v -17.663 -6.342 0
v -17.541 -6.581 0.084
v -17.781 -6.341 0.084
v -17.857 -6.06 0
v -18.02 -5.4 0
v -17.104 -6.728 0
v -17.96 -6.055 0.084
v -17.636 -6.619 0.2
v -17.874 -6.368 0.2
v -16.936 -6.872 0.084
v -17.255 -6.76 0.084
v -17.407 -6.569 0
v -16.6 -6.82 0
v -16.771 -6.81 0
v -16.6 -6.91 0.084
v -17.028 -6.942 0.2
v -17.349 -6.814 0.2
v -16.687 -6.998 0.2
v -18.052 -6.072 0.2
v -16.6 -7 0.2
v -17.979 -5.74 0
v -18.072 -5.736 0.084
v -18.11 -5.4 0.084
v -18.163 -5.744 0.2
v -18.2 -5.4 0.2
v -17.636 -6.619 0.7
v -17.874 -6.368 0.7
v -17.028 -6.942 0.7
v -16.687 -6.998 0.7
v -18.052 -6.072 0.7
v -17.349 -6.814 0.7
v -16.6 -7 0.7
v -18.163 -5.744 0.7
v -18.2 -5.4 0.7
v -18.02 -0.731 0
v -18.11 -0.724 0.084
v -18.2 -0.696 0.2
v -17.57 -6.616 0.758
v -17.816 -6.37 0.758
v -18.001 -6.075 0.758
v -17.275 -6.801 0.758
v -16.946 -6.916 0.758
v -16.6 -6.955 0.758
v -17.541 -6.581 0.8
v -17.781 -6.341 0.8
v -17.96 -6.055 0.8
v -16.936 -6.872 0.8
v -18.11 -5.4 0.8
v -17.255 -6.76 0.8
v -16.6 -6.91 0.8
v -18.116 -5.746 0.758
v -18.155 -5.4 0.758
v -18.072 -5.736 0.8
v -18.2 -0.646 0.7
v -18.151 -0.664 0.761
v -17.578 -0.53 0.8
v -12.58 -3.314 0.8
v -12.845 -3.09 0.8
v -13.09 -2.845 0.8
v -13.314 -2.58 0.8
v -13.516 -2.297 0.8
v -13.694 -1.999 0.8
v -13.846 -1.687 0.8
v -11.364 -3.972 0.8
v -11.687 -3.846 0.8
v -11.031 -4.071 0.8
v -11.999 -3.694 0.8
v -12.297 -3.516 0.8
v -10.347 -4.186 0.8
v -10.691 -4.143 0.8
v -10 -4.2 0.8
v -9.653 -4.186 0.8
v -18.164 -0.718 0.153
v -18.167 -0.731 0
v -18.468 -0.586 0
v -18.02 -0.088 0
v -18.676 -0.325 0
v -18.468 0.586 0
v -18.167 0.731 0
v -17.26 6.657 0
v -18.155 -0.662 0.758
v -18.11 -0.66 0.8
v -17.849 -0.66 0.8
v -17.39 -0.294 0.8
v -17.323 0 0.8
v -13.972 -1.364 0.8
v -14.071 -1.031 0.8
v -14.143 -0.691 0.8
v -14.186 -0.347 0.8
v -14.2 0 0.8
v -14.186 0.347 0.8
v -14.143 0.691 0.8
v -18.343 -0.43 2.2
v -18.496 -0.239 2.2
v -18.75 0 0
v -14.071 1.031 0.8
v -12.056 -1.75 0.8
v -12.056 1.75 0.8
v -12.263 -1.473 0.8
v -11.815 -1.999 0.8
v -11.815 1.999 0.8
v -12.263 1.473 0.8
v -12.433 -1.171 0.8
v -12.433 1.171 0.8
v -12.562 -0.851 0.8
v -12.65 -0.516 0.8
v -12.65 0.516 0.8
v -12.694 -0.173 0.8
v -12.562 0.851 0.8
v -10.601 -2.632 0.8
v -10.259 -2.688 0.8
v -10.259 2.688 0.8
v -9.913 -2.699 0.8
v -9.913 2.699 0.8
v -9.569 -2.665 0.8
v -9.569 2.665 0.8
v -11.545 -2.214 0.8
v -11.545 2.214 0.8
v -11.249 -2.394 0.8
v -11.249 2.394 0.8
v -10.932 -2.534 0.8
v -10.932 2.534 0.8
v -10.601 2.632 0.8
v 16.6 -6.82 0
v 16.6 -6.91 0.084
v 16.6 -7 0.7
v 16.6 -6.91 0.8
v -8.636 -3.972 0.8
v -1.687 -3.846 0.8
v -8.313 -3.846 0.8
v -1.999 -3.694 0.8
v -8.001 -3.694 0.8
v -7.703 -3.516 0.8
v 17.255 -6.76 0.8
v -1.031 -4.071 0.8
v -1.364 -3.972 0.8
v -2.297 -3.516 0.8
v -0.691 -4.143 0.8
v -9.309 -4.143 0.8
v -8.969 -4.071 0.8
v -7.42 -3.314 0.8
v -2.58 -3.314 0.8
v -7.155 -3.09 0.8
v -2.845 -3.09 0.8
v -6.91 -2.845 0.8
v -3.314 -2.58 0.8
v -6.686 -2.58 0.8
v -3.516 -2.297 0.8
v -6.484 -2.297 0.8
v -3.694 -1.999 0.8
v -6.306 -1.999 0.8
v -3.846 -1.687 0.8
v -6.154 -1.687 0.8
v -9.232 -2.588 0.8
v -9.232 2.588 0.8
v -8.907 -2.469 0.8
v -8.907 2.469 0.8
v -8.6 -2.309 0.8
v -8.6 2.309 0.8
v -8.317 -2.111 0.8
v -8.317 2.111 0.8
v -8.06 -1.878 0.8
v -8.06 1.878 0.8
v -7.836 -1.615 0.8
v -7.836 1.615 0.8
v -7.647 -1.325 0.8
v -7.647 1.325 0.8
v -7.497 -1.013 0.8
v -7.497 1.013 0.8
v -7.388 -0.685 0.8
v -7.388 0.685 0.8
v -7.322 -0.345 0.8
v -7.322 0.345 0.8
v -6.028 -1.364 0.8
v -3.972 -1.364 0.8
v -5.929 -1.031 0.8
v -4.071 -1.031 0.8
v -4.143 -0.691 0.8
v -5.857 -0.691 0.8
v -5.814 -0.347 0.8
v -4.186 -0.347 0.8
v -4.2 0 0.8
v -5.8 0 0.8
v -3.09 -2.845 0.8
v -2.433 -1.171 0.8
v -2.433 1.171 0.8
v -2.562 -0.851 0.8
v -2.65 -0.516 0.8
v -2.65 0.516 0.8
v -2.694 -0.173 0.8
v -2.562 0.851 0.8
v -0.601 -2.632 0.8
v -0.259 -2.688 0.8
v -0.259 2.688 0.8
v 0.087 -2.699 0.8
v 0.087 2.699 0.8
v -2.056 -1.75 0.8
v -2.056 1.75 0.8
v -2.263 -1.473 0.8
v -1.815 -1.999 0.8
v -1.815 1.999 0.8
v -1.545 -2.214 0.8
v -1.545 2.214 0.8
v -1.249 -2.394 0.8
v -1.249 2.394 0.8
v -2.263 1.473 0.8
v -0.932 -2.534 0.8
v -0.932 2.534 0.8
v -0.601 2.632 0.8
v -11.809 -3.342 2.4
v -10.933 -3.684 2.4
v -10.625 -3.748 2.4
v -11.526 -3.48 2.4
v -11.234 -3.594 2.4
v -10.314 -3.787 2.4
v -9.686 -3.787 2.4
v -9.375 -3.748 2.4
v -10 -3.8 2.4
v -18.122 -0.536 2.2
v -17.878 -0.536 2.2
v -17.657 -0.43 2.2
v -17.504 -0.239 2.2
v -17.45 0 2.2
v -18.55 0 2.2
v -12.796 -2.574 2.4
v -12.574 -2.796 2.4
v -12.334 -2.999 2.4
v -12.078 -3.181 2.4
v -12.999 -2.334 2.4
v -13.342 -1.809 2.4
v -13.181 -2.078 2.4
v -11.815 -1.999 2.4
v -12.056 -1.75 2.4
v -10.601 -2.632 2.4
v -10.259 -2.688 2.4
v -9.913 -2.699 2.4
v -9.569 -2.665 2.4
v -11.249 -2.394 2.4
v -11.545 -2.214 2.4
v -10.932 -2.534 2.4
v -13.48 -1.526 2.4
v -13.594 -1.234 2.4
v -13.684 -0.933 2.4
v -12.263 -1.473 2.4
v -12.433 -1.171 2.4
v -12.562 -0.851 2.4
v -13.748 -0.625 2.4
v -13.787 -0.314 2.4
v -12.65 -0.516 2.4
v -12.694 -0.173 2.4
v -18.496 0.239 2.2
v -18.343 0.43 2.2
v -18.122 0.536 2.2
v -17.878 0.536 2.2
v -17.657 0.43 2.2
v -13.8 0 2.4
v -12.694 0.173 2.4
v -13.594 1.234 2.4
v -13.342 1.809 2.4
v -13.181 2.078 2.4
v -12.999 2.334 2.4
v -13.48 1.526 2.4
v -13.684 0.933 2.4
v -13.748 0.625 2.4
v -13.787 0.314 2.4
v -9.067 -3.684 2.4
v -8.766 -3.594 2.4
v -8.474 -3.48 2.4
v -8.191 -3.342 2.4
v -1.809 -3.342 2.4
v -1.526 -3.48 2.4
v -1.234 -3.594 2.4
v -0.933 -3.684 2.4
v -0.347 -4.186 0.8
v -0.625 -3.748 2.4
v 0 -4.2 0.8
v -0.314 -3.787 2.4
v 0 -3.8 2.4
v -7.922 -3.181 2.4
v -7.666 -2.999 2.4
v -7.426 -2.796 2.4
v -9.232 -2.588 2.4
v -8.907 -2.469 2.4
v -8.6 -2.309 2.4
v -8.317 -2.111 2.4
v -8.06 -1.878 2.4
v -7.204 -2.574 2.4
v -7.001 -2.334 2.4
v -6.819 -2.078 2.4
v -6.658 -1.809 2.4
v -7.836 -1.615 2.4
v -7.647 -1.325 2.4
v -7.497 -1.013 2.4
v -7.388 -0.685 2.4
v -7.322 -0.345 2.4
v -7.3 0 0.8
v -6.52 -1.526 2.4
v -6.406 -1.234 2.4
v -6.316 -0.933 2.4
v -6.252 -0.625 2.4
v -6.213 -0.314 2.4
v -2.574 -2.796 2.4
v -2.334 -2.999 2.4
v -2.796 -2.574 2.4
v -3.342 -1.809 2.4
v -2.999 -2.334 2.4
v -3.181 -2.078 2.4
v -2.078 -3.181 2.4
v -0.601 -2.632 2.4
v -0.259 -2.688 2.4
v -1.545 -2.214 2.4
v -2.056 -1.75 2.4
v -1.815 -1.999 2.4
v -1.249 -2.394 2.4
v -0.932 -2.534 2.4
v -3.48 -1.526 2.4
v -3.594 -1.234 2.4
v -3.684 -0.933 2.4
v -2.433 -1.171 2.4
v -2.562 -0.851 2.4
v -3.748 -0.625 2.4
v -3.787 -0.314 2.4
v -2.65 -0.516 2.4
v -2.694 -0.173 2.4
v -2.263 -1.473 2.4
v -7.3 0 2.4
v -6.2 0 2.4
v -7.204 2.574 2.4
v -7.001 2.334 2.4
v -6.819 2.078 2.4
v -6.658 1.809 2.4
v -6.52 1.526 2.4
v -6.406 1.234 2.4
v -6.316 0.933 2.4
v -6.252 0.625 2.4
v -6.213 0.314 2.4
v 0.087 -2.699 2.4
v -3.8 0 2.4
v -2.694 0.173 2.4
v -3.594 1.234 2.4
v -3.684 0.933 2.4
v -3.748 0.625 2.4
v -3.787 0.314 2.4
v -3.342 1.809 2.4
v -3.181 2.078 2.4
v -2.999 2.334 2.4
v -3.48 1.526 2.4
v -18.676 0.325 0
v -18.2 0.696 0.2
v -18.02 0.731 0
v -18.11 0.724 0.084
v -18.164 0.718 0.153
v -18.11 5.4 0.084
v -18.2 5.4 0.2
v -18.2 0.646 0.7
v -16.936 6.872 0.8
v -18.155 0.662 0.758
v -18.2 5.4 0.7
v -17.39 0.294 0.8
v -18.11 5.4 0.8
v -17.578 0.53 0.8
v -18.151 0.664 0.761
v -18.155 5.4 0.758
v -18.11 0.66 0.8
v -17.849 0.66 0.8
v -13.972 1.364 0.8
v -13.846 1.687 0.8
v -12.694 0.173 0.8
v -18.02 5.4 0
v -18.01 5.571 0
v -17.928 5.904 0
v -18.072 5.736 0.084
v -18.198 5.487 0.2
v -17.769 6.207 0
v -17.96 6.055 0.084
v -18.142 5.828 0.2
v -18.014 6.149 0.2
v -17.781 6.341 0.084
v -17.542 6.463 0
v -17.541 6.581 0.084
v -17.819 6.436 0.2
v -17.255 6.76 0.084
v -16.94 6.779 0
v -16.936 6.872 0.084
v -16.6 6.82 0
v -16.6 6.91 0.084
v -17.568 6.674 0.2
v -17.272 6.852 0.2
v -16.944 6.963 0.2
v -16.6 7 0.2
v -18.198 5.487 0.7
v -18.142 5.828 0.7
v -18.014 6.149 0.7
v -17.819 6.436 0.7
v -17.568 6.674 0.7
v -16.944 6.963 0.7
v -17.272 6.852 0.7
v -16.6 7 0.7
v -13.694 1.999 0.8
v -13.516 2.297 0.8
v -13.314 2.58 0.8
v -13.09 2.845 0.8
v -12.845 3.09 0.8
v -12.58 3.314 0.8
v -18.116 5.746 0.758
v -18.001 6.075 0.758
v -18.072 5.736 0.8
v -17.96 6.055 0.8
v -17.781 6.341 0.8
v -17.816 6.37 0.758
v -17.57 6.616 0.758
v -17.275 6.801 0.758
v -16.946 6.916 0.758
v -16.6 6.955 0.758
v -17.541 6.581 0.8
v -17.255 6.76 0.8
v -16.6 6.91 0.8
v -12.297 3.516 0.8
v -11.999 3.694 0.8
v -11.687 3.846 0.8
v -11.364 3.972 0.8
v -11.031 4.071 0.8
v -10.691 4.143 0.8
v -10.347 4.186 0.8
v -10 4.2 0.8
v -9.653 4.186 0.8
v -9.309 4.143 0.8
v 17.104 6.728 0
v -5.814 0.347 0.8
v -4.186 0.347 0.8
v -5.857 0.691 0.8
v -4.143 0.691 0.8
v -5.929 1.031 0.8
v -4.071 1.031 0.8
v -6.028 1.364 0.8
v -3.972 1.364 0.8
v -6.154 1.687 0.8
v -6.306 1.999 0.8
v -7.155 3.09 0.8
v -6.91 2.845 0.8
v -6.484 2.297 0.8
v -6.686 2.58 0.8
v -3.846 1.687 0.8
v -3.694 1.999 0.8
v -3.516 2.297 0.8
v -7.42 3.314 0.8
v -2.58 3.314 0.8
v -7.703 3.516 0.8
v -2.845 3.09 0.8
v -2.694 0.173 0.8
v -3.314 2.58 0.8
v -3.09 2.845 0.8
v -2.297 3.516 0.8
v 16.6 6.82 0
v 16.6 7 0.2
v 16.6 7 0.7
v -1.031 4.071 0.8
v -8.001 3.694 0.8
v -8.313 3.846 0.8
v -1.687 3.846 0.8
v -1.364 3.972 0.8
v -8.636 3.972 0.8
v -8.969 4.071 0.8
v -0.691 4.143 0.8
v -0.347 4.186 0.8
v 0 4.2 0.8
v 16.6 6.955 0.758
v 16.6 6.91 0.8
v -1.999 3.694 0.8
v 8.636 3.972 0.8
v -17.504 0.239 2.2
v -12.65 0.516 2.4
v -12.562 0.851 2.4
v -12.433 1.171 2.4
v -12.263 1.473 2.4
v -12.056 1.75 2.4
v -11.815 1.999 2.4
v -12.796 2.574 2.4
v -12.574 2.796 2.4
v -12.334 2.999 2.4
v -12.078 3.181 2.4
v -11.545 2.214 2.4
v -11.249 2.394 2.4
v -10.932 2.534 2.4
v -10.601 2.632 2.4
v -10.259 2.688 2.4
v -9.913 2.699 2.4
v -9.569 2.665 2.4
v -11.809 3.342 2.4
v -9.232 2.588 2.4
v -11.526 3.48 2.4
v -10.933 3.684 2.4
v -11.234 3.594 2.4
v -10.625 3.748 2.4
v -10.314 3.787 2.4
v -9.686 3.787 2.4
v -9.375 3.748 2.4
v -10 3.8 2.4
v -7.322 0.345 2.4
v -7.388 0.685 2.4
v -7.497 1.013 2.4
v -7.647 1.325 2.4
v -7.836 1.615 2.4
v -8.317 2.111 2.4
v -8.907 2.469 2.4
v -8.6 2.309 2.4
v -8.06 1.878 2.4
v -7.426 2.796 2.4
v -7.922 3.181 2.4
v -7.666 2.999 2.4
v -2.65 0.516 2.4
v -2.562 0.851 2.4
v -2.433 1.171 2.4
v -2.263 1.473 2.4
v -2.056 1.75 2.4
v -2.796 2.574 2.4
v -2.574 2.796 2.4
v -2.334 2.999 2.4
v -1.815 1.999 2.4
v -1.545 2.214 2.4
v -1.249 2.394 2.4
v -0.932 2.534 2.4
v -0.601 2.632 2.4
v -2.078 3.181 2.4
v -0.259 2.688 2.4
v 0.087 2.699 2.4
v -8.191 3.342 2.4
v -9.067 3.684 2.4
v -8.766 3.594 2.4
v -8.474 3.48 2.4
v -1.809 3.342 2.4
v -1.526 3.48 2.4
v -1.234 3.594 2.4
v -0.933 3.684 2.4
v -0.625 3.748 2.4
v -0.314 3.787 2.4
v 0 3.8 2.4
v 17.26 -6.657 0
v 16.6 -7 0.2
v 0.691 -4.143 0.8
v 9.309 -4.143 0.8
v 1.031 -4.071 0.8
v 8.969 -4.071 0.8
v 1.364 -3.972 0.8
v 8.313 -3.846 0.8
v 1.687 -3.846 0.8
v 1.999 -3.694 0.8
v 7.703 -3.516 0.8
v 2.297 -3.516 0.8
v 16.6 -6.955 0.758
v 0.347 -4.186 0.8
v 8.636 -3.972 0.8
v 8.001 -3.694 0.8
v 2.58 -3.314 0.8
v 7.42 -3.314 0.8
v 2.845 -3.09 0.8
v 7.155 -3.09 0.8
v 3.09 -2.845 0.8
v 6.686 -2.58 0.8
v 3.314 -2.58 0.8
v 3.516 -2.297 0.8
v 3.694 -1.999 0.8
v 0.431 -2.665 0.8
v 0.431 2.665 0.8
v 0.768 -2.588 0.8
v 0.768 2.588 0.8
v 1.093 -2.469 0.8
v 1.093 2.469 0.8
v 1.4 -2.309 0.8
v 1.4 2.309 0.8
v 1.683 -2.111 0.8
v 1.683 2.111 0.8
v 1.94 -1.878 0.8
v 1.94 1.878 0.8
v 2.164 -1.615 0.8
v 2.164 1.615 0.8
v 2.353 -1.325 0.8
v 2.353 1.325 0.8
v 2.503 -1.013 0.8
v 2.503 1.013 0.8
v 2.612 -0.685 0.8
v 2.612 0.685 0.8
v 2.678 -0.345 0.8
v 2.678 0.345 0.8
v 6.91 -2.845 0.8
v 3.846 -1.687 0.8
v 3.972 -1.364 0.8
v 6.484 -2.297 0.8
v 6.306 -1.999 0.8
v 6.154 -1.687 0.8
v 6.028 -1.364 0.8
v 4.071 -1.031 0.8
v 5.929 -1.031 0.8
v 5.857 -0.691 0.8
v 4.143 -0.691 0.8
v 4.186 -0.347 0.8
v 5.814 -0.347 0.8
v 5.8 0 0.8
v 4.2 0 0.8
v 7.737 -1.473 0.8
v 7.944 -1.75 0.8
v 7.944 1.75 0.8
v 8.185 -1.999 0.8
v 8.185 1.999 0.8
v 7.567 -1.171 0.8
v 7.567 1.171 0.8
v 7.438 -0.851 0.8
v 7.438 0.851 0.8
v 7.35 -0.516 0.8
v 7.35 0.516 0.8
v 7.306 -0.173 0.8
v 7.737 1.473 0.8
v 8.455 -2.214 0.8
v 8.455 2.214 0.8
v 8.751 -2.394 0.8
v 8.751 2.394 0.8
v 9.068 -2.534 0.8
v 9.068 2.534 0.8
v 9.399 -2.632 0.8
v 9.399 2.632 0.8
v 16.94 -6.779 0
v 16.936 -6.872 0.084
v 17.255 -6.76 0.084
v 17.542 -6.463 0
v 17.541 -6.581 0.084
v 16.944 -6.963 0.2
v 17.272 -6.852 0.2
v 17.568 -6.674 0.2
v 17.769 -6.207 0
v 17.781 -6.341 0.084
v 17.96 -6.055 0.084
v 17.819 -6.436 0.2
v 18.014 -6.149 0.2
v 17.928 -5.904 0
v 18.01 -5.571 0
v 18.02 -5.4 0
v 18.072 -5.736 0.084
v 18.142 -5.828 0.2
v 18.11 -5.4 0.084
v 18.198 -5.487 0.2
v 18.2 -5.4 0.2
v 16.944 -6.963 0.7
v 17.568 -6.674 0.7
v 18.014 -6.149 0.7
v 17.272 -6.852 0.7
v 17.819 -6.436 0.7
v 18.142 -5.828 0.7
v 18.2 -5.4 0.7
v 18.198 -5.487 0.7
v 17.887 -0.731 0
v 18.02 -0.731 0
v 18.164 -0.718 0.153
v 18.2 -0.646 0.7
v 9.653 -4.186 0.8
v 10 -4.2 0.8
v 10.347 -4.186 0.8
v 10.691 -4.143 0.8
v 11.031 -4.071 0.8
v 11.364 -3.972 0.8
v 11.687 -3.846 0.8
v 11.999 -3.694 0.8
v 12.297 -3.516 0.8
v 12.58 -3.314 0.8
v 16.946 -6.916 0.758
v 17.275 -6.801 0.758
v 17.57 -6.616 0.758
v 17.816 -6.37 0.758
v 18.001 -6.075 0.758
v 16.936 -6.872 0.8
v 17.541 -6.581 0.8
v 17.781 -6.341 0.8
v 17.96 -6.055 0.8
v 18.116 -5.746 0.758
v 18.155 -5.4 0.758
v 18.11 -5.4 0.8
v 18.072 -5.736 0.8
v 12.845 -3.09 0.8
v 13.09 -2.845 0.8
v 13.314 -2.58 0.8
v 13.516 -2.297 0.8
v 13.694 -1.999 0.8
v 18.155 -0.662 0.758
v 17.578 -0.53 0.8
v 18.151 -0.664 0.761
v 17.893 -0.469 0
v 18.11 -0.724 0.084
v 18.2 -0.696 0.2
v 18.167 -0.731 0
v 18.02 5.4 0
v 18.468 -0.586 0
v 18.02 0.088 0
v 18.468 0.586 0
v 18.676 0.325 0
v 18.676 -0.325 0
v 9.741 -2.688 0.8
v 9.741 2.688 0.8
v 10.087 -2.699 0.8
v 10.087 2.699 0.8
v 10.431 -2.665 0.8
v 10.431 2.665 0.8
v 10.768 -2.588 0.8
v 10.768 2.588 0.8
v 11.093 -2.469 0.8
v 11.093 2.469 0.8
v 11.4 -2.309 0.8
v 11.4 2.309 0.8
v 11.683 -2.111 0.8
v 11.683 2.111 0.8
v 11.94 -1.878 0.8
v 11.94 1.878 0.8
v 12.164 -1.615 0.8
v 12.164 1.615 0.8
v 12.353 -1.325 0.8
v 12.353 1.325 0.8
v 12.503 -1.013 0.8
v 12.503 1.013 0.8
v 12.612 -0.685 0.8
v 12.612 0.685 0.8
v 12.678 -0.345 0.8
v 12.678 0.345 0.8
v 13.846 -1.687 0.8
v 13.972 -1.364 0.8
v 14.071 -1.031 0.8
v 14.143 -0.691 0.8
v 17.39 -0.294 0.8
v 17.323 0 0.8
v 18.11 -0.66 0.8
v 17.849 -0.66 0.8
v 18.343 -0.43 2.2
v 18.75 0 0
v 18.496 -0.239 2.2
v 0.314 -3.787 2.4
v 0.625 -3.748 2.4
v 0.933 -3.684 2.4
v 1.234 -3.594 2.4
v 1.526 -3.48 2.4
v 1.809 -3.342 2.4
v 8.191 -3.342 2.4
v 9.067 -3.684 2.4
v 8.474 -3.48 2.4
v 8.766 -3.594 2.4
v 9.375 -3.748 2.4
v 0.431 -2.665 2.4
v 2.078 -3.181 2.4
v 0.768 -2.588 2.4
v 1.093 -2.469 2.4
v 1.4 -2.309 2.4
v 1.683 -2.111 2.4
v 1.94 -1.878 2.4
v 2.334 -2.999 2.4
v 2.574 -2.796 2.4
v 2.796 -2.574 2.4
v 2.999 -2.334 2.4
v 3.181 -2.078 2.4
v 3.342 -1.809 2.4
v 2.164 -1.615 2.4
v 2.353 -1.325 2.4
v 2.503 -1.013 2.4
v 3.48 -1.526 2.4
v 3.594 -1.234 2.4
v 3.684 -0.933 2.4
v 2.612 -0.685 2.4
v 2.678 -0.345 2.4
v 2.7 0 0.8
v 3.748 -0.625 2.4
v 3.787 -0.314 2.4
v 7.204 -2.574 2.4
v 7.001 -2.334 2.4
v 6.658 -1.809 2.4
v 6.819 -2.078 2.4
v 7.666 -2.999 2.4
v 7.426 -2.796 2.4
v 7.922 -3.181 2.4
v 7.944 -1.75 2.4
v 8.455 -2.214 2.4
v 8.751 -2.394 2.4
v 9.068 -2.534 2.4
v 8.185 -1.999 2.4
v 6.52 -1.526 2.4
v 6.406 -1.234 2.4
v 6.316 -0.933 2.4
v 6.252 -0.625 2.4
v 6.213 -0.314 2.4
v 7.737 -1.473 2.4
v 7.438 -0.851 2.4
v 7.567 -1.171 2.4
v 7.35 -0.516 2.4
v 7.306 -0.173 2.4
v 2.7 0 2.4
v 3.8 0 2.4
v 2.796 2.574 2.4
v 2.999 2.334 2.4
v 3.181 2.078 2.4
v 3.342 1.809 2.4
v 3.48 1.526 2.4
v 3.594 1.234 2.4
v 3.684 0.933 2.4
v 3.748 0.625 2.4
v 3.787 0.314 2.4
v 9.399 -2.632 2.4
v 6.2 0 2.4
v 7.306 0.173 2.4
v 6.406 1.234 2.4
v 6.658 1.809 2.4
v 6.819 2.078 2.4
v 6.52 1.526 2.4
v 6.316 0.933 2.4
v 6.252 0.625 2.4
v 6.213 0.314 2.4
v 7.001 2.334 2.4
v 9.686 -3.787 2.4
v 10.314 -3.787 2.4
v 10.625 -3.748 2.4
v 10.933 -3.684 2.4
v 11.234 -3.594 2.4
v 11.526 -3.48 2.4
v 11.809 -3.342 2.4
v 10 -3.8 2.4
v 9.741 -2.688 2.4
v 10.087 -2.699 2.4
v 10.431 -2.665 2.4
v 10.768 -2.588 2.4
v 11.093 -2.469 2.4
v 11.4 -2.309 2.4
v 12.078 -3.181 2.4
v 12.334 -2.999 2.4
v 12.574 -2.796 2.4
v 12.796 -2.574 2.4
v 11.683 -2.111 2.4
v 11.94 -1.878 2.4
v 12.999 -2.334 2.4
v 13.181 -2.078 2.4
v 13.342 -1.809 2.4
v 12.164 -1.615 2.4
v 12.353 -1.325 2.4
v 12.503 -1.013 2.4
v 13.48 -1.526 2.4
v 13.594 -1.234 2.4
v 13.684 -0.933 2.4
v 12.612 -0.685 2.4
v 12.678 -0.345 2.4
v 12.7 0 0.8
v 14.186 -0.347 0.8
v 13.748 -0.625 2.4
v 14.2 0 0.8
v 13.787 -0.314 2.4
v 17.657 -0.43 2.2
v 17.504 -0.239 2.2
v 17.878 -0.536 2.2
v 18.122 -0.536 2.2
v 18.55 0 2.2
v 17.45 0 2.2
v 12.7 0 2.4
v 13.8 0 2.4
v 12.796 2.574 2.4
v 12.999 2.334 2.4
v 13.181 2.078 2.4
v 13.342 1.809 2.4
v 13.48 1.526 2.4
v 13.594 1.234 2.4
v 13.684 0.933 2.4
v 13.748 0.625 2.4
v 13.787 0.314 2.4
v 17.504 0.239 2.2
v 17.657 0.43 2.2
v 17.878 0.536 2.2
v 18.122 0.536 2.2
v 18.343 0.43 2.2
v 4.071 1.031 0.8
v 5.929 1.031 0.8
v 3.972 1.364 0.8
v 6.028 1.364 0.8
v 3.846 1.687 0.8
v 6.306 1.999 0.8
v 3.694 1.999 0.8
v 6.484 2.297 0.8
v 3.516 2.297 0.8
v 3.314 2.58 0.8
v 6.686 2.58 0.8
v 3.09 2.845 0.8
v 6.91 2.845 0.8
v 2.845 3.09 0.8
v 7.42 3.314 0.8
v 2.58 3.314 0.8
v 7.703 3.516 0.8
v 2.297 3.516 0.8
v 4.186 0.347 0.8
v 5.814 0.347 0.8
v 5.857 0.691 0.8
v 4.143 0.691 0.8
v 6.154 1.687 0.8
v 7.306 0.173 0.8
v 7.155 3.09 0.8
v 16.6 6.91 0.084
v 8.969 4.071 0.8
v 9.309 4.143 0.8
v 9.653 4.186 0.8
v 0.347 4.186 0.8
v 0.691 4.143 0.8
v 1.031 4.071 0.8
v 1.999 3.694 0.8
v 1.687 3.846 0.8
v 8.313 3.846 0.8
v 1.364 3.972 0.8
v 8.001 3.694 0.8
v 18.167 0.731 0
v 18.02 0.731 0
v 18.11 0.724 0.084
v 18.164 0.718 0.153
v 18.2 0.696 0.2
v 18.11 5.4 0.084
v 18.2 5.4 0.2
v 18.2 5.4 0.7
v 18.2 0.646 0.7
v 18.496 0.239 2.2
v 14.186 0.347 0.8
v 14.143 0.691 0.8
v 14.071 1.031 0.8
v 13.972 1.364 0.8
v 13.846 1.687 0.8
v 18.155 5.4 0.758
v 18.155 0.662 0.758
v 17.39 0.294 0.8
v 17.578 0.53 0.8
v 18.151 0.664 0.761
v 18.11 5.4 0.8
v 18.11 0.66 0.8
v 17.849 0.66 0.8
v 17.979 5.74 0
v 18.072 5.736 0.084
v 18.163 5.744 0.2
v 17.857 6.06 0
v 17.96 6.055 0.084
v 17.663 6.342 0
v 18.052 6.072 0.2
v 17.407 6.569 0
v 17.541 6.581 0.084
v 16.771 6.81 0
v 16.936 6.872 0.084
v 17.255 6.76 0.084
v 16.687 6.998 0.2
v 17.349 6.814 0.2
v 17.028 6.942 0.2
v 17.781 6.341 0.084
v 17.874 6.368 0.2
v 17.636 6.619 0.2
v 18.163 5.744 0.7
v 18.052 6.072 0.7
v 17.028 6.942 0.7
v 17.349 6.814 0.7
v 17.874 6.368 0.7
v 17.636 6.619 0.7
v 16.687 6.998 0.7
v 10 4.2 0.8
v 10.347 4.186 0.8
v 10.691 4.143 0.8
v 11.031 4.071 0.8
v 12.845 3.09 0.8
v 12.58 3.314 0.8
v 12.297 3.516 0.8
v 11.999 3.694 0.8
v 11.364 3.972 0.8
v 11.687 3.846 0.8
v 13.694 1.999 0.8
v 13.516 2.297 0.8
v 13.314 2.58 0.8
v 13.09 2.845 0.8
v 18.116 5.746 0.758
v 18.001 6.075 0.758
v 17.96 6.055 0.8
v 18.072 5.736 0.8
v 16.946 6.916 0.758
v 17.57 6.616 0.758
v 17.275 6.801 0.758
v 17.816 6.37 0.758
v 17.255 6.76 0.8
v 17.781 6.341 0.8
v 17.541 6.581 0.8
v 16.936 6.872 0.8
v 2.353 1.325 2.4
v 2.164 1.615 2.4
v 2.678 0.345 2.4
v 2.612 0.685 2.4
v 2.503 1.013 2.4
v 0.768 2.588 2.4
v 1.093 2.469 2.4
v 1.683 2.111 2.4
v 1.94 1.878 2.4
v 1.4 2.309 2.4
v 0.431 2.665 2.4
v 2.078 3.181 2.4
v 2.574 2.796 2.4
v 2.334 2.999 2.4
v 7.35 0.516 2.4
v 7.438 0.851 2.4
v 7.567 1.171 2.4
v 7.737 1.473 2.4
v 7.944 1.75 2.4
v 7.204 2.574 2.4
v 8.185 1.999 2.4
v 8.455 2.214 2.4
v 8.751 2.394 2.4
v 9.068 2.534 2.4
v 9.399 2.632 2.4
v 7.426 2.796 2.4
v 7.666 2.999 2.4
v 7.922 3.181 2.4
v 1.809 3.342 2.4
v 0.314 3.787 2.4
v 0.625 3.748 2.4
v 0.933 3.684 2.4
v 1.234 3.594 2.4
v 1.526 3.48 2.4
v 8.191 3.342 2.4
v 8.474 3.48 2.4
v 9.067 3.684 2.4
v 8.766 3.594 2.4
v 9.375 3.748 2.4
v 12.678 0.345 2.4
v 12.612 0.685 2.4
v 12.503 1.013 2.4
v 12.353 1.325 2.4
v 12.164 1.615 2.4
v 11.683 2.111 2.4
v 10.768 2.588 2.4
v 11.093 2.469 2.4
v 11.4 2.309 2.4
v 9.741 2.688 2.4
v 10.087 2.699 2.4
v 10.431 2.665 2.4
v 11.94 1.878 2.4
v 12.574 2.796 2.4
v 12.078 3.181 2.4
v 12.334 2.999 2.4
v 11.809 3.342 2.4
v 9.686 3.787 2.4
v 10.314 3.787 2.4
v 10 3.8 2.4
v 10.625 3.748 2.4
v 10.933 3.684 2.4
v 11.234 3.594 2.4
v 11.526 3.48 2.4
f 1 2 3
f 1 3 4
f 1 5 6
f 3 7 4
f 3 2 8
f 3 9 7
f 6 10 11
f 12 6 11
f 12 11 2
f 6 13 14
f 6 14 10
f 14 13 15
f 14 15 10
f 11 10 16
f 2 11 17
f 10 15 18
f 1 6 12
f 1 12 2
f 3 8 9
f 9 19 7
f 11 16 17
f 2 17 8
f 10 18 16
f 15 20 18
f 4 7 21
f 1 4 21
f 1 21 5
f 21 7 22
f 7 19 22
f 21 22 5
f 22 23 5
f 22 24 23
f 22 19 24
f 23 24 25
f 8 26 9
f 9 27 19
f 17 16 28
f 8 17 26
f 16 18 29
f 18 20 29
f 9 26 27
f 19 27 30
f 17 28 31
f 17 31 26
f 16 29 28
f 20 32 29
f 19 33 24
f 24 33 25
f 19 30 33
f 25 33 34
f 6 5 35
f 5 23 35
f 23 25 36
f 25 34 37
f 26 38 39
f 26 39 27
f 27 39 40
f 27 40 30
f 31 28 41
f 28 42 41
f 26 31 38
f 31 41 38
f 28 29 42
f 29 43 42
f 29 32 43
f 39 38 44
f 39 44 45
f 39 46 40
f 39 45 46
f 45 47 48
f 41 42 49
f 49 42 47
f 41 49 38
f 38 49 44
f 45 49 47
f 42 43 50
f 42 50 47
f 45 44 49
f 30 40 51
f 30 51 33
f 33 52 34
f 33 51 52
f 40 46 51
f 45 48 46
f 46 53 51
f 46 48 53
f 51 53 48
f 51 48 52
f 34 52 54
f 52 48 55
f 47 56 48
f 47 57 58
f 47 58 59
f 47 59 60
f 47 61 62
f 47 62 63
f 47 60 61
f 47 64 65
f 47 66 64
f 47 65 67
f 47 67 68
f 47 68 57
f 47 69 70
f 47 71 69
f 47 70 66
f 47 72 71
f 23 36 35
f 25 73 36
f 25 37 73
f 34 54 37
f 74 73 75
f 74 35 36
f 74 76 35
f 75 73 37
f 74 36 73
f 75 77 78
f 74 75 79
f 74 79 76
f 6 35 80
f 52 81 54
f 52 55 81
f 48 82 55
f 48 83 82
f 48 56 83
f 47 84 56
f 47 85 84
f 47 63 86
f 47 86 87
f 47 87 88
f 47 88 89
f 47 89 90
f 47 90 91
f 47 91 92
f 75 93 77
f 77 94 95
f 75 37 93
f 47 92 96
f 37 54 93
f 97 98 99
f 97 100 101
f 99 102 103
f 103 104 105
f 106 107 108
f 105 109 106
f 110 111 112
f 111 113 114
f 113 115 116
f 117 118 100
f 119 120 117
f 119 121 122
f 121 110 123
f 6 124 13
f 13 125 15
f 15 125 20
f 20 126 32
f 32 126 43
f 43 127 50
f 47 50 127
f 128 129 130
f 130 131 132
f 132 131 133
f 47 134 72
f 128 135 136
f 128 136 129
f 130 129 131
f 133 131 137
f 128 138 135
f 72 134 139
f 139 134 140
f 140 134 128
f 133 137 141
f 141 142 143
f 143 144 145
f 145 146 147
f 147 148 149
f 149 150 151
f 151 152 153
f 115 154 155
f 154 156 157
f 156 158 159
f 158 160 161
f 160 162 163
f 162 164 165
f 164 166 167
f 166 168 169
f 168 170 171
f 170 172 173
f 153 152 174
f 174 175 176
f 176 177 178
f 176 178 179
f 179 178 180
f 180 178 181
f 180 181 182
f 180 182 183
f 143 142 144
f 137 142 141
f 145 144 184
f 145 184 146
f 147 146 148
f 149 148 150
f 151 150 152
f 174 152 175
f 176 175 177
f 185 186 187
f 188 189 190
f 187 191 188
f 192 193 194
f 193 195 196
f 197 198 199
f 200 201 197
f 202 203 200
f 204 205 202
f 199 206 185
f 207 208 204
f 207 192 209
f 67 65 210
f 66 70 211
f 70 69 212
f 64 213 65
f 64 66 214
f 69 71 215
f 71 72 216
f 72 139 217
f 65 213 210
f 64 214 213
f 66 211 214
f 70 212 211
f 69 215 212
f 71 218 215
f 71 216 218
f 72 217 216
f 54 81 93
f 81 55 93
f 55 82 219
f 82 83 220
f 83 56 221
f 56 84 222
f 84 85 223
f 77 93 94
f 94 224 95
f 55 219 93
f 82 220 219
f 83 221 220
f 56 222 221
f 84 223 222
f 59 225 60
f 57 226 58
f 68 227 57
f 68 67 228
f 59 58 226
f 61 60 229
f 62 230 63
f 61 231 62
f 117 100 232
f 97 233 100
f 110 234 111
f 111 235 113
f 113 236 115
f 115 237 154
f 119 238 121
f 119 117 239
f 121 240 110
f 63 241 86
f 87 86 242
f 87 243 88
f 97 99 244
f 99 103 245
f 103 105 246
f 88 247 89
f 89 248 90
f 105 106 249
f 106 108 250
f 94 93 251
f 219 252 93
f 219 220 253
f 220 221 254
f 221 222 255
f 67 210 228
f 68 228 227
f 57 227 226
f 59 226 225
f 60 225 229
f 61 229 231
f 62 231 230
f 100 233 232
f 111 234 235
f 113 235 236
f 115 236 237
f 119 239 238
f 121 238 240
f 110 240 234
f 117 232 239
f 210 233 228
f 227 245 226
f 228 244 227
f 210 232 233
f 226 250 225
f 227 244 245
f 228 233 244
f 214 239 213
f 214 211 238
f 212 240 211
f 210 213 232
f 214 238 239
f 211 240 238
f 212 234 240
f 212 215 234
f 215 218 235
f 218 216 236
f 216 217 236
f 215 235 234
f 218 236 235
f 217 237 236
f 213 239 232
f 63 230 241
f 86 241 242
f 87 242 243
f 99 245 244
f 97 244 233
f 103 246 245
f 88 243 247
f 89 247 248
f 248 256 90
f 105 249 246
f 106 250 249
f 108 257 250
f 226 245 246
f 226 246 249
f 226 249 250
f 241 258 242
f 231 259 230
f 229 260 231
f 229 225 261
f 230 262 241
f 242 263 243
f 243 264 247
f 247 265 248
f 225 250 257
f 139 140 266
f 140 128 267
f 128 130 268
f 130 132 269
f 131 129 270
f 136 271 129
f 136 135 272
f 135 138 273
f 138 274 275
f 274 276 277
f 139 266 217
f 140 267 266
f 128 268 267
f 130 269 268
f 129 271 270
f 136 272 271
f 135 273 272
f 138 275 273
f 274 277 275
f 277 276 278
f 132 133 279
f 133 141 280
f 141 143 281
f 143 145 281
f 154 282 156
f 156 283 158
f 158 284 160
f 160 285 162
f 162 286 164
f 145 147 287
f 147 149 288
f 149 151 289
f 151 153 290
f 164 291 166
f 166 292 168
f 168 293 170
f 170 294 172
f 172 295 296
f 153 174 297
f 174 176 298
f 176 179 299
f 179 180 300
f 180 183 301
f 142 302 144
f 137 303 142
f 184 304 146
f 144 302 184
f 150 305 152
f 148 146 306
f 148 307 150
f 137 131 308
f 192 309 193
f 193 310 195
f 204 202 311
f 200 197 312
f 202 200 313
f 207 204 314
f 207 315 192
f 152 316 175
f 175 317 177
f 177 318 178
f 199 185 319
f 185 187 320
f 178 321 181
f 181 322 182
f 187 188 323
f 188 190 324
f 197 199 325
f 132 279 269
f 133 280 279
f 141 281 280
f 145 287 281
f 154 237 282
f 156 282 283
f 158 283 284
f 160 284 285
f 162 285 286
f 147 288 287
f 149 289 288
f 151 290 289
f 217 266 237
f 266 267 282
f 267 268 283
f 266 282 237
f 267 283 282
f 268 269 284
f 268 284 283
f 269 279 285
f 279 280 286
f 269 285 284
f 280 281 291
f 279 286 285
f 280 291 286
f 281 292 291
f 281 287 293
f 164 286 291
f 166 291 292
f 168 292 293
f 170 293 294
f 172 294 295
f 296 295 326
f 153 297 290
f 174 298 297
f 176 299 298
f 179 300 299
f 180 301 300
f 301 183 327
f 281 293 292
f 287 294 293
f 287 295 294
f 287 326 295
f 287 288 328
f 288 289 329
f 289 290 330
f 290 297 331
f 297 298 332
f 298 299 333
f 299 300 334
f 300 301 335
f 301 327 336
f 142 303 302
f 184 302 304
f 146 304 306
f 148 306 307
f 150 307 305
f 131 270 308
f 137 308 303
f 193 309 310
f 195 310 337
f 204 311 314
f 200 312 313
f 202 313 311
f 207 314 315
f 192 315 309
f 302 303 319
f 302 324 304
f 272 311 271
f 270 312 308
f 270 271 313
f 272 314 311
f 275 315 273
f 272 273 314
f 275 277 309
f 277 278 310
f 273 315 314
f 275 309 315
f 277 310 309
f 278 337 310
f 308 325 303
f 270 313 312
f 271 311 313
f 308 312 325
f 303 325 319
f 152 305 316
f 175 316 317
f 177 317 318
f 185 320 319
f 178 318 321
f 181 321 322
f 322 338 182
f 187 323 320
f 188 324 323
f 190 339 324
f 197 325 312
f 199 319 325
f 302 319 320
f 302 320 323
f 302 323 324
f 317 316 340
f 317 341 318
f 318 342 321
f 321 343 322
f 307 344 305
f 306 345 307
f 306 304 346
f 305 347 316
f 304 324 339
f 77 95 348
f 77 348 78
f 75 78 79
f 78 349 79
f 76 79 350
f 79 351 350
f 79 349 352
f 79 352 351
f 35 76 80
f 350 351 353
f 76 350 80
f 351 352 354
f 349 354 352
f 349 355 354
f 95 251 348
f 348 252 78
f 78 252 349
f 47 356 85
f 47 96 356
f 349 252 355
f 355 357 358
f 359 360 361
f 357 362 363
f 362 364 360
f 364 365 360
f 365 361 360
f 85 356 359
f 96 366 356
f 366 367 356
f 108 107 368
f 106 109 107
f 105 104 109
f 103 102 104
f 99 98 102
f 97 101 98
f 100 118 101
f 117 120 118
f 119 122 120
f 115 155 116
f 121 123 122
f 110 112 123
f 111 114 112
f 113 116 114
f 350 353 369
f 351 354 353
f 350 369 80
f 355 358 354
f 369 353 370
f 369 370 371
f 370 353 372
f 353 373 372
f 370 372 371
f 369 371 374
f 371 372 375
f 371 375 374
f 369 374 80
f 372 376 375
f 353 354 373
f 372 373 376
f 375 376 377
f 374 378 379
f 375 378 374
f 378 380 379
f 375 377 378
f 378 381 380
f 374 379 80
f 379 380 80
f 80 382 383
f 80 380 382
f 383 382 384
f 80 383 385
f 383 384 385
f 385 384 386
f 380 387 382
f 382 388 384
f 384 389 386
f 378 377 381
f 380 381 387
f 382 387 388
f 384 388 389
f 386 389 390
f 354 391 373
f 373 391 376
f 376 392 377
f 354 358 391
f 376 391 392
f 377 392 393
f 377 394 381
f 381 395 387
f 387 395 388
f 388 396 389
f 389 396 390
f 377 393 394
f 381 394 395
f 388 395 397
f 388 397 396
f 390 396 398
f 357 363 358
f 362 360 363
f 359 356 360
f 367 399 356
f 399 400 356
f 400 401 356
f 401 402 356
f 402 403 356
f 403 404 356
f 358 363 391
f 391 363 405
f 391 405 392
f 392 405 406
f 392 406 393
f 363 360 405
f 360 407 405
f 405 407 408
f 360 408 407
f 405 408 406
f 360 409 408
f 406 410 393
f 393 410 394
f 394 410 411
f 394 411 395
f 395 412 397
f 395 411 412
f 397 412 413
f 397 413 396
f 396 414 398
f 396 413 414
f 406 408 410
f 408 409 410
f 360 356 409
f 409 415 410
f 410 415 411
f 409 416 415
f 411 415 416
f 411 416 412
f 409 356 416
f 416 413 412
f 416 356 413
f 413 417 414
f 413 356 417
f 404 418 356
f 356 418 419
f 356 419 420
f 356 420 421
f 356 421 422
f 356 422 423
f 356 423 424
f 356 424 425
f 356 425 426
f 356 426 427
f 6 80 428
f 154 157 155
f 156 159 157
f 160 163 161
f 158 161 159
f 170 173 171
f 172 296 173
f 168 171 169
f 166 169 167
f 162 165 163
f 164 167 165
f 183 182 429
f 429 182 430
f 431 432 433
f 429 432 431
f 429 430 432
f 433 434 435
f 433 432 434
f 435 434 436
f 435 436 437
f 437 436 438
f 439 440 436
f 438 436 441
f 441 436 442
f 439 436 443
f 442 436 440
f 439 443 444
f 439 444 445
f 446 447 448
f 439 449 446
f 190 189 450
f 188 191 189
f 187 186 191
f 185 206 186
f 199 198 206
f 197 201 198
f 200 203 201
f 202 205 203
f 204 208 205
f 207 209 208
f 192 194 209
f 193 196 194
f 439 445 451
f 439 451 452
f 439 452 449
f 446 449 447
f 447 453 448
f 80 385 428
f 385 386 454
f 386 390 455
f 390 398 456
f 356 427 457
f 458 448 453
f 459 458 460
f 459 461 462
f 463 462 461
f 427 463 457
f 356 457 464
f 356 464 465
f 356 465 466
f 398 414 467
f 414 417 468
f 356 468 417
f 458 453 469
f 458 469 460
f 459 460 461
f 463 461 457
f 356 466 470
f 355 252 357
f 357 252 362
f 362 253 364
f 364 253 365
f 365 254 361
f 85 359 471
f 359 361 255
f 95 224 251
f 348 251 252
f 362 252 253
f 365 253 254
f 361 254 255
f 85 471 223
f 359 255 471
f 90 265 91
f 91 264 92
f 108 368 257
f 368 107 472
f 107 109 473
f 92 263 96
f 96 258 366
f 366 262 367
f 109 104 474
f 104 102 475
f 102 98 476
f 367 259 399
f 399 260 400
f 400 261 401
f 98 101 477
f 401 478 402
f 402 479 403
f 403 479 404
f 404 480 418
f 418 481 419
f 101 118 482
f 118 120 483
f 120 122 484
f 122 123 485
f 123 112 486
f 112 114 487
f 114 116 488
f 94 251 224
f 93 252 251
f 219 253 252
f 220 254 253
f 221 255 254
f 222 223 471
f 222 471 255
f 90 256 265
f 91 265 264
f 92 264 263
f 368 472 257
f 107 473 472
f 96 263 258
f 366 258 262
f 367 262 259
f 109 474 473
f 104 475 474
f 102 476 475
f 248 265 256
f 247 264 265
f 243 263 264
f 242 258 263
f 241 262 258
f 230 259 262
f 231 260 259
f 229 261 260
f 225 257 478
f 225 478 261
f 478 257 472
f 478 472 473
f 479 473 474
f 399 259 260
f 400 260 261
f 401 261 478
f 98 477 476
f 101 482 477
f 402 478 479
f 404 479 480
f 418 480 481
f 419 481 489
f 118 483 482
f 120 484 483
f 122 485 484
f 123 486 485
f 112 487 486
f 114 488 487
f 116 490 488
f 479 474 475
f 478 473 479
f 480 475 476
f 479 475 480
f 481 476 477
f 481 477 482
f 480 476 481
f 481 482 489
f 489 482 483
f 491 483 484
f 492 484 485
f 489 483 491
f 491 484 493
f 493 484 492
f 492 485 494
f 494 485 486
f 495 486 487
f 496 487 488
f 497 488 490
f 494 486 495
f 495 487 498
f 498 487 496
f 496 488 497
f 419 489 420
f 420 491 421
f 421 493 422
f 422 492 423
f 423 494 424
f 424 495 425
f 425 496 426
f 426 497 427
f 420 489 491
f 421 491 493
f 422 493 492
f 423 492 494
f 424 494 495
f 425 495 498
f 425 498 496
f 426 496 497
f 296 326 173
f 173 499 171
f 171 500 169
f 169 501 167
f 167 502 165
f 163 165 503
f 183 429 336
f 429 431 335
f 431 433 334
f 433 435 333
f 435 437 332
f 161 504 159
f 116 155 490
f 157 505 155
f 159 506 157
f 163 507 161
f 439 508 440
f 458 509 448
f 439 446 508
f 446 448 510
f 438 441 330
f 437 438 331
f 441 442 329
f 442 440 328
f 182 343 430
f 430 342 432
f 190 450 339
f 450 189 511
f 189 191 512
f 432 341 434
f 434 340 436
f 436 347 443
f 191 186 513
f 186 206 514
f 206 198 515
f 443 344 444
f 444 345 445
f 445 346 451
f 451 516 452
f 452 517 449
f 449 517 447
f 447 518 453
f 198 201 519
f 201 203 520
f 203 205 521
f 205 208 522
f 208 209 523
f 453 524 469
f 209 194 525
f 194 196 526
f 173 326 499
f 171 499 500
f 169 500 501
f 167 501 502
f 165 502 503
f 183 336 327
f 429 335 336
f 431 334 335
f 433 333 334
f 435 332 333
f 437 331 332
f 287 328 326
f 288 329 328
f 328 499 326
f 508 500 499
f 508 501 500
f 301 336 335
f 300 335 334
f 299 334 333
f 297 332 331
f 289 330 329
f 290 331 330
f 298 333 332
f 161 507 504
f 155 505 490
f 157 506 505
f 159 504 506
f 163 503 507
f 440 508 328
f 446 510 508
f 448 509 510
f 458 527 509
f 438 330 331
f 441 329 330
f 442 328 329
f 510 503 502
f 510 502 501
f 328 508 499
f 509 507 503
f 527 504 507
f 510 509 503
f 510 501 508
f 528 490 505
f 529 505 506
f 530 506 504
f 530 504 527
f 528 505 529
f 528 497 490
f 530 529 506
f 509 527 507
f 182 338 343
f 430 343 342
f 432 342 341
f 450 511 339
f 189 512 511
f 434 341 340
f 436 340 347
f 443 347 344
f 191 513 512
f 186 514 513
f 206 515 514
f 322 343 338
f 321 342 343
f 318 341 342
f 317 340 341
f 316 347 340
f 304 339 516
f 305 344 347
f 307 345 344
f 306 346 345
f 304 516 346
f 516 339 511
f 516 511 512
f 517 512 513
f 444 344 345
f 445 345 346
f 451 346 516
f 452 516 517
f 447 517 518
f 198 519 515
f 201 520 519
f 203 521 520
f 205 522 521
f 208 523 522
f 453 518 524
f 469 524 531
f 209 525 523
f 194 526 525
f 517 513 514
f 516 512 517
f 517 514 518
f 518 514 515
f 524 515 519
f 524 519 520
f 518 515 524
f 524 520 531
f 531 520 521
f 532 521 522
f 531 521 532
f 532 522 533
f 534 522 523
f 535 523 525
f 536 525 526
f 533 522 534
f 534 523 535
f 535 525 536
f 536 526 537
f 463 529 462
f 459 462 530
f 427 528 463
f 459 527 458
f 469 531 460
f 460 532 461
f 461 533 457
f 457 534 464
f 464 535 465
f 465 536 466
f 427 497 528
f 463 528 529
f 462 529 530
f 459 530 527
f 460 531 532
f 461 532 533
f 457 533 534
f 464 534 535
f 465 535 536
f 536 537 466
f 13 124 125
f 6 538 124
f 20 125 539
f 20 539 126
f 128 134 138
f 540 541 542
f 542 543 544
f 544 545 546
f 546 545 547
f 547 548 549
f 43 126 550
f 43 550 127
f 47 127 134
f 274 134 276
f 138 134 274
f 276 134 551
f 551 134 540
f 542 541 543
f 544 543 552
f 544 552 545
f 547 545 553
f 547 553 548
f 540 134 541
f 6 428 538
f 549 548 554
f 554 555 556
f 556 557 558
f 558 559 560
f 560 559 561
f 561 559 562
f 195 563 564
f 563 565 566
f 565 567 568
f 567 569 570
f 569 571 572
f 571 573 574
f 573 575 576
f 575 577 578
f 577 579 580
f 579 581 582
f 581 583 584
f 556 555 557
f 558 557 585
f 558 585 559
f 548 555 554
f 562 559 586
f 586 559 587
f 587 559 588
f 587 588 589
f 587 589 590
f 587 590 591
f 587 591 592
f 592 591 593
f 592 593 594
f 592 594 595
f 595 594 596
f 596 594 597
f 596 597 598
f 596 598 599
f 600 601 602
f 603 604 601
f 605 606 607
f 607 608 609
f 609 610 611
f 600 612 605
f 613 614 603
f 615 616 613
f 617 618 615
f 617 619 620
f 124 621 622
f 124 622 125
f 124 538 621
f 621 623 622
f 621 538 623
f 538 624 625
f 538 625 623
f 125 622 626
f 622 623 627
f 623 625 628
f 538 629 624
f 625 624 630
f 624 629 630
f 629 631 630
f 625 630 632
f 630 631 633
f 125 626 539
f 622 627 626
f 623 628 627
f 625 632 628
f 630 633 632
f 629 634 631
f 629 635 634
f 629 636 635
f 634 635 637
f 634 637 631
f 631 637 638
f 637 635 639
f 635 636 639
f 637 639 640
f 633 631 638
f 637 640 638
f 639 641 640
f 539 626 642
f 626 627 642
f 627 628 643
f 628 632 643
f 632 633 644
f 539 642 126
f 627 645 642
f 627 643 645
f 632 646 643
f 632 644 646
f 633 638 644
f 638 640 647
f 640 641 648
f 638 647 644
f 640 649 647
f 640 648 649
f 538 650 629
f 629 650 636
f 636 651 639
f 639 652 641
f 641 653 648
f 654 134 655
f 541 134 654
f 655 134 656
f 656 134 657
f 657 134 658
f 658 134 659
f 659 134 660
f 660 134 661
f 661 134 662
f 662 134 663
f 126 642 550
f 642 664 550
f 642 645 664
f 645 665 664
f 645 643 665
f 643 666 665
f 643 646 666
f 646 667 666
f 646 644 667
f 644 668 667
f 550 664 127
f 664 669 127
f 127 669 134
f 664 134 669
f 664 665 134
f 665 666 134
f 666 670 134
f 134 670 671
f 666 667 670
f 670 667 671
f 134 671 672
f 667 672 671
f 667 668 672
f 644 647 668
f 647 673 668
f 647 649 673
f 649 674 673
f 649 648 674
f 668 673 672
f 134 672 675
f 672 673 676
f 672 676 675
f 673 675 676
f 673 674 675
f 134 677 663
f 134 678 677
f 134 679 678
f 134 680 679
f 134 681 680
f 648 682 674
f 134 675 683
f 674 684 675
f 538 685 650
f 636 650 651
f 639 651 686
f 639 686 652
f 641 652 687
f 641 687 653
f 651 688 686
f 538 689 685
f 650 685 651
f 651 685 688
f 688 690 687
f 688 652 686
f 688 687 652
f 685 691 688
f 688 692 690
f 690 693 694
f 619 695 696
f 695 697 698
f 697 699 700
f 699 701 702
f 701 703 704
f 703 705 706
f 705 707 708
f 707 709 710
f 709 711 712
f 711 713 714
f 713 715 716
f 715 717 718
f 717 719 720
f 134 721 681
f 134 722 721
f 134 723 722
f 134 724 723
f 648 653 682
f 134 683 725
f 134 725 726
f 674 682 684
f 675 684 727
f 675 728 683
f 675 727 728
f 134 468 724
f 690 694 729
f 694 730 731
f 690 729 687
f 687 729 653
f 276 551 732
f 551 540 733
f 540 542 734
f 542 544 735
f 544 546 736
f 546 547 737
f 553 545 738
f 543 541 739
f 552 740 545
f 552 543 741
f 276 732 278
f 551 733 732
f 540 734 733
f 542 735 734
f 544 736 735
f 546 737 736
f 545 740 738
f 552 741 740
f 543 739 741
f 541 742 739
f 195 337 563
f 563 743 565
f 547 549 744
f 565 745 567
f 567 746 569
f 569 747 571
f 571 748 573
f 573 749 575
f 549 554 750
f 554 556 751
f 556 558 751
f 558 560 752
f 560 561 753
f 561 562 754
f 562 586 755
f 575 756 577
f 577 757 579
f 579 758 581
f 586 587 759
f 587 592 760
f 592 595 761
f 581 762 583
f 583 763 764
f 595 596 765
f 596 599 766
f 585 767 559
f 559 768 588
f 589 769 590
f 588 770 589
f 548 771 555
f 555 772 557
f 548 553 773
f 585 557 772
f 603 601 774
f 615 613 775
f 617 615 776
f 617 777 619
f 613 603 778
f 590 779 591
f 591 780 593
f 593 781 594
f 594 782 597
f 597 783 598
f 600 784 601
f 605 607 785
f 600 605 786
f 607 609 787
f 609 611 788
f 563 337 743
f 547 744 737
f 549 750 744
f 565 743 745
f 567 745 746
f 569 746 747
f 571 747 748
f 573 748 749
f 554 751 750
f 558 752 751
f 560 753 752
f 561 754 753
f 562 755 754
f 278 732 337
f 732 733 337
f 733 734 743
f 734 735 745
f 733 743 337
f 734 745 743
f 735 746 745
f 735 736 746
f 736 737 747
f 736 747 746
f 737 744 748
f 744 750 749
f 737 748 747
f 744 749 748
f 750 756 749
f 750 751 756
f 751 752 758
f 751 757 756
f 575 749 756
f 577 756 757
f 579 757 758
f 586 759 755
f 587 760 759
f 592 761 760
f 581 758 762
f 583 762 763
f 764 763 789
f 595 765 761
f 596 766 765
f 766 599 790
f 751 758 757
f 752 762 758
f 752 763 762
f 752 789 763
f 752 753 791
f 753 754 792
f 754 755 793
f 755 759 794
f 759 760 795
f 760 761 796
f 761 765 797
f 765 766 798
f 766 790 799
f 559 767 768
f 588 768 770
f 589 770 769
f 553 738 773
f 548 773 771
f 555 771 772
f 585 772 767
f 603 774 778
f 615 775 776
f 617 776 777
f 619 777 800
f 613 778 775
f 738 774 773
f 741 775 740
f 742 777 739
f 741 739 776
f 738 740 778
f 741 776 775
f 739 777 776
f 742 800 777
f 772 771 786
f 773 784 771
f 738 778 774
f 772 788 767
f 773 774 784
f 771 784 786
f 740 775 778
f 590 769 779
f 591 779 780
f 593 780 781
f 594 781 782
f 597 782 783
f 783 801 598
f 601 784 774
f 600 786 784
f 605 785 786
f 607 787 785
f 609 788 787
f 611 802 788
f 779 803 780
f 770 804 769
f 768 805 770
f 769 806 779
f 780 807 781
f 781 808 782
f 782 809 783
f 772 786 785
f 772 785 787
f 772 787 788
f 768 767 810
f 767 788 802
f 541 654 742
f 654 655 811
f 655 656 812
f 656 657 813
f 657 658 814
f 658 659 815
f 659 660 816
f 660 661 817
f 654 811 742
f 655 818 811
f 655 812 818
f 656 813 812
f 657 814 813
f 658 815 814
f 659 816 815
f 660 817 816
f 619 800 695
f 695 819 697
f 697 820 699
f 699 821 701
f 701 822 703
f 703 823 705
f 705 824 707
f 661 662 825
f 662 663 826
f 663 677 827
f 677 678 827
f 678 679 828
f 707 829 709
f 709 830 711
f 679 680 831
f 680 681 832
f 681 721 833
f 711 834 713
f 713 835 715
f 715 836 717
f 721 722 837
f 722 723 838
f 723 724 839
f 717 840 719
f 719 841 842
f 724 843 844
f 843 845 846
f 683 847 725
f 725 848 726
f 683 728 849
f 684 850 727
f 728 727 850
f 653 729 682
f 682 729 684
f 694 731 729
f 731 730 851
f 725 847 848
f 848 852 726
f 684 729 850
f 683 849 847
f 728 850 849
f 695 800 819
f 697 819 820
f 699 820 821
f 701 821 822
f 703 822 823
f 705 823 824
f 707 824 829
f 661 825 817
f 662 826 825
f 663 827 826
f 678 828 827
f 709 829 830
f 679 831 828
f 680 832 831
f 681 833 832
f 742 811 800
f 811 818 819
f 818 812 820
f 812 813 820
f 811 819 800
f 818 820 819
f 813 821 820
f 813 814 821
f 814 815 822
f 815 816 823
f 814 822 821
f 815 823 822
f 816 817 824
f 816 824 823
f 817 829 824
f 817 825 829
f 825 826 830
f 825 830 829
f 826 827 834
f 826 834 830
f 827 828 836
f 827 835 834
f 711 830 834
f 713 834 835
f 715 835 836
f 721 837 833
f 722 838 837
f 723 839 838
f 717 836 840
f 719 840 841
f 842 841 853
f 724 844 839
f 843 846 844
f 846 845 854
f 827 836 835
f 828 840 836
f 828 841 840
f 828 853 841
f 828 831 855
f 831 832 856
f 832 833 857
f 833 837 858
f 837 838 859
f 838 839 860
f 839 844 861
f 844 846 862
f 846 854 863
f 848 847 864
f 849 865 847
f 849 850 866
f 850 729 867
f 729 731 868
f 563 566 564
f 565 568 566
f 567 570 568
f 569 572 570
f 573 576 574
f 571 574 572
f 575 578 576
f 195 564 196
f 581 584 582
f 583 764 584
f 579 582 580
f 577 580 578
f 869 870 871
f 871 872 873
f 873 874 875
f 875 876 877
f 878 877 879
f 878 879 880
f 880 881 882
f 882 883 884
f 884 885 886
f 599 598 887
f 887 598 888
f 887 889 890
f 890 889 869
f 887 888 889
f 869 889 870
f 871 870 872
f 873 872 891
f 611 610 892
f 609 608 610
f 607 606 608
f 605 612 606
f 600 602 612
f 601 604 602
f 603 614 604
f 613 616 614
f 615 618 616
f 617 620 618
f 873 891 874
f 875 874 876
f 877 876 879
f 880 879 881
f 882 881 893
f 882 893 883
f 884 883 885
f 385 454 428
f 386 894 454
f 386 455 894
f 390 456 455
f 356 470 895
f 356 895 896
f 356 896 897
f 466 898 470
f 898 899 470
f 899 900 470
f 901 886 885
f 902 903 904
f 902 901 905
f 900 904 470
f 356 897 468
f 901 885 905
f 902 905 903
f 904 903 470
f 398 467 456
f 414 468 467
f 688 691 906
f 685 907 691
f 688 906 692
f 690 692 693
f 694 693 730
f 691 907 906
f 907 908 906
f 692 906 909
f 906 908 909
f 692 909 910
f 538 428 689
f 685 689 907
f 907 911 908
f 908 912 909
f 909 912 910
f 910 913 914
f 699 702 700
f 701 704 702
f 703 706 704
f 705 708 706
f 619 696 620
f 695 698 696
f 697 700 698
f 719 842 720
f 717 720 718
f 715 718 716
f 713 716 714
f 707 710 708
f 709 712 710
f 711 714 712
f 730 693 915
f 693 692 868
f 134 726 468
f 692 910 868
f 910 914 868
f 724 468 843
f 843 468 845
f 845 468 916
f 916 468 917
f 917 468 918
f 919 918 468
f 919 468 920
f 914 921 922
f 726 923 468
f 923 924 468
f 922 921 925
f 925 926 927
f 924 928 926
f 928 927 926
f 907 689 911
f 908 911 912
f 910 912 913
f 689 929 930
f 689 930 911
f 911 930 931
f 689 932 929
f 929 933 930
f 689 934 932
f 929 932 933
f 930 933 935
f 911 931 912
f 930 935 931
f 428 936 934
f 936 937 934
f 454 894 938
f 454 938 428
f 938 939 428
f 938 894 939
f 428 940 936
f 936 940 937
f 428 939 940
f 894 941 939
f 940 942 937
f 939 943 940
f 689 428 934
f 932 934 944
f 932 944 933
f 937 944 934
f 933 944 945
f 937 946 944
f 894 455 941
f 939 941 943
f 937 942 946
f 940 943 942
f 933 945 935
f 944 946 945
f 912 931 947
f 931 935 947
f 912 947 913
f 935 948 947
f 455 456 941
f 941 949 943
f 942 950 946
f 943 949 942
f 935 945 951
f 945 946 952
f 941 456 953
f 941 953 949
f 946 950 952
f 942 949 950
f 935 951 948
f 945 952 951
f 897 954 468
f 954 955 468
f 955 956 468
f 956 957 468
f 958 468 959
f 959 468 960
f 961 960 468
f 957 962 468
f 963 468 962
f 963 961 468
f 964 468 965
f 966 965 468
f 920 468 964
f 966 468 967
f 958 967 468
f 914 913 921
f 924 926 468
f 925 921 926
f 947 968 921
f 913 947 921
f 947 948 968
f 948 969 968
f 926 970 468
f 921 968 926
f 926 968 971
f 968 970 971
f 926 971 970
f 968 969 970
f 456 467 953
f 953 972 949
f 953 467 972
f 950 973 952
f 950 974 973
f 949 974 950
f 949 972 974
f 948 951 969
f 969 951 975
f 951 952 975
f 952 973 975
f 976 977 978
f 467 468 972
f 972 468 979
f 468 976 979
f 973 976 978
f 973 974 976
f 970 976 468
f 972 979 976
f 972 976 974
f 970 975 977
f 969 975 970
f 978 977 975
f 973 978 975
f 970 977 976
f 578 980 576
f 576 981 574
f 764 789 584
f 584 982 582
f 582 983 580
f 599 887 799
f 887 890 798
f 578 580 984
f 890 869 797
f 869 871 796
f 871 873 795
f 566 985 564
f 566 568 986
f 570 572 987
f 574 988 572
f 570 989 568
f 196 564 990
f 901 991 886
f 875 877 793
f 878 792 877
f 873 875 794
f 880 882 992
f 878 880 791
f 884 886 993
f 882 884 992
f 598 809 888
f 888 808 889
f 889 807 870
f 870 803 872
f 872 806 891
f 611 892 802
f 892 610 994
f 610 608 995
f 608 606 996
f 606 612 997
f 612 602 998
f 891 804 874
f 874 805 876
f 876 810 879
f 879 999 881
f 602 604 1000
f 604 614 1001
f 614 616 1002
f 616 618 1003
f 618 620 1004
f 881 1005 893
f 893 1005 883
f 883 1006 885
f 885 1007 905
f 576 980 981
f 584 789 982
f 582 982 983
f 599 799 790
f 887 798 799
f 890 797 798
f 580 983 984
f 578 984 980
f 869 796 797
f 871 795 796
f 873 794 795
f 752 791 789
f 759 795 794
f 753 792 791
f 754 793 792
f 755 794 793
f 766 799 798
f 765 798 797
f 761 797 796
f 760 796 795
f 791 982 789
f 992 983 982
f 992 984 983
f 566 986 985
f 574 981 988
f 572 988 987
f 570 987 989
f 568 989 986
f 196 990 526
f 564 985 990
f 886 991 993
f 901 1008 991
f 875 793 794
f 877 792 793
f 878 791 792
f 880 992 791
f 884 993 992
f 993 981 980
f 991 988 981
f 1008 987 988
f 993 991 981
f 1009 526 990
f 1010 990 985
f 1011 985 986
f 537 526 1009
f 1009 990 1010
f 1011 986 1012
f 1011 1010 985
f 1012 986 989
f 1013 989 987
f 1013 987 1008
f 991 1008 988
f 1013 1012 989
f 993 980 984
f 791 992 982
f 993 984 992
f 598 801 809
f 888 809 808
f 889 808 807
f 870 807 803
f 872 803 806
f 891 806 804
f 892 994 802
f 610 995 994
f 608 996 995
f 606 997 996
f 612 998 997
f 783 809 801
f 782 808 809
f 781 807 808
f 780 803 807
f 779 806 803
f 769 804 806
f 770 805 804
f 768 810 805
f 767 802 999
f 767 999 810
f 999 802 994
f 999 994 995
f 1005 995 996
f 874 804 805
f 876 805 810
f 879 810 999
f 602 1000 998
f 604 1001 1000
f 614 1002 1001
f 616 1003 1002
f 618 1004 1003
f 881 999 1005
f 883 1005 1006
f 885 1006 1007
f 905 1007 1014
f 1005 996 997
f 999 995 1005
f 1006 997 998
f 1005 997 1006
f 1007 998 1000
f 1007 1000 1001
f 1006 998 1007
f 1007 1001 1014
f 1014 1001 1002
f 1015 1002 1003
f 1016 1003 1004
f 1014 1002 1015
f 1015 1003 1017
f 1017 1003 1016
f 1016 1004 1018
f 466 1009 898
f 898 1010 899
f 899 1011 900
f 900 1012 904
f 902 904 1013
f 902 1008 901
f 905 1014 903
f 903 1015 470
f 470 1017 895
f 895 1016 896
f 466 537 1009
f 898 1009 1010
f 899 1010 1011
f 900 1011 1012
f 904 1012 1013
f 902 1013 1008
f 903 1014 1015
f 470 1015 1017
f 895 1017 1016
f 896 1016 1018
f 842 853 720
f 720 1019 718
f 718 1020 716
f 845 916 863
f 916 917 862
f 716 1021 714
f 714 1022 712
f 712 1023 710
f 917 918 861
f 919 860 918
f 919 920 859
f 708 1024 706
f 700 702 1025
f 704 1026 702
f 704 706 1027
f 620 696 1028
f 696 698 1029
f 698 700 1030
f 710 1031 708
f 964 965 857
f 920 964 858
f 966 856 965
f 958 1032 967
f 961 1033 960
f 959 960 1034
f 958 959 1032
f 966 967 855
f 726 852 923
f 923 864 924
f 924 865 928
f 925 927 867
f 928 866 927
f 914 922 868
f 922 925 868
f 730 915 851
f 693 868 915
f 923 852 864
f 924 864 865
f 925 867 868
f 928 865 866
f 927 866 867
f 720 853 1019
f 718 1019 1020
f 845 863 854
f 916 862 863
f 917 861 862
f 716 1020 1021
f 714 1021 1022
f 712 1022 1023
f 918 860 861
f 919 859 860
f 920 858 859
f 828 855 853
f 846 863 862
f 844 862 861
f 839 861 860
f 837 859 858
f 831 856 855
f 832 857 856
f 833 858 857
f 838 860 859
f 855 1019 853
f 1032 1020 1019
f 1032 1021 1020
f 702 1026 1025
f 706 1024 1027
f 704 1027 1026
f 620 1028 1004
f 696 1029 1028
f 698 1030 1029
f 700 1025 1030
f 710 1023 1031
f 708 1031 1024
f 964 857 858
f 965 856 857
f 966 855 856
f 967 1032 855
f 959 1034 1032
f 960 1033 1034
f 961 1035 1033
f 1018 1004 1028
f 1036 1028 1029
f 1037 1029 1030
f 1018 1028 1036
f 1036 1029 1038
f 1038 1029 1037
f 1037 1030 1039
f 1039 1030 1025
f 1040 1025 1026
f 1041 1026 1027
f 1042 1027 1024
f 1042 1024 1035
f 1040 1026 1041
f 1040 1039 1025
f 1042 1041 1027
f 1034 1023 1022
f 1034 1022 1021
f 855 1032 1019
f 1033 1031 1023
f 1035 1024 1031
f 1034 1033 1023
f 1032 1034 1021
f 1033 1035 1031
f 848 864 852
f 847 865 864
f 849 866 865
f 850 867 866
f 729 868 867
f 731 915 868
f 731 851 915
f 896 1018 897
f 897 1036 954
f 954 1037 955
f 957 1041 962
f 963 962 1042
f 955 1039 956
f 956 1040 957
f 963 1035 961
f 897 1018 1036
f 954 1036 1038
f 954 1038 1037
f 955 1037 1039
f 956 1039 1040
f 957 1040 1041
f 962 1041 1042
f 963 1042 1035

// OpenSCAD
// Hauntology Tabletop Print Kit — Prop #5 / Section 6: Resolve Lamp Diffuser Insert
// Colour: Bone (#e9e4d8, printed at 0.8 mm translucent face thickness; print 6x, one per seat)
// Size: 36.4 W x 14.0 H x 2.4 D mm
// Mechanism: Slides into the slot behind each seat plinth's 3 Resolve LED windows to diffuse WS2812B pixels
// Print orientation: Flat on front diffuser face (Z = 0), zero supports.

include <_common.scad>

module prop_05_resolve_insert() {
  difference() {
    union() {
      // 1. Thin 0.8 mm translucent diffuser face plate (36.4 x 14.0 x 0.8 mm) + gentle side friction pips so it stays in the slot!
      chamfer_box(36.4, 14.0, 0.8, r = 1.6, ch_bot = 0.2, ch_top = 0.1);
      for (sx = [-1, 1]) {
        translate([sx * 18.0, 0, 0])
          cylinder(h = 2.2, d1 = 1.5, d2 = 1.1);
      }

      // 2. Three optical isolation light-baffle rings around each 5 mm LED window
      for (lx = [-10.0, 0.0, 10.0]) {
        translate([lx, 0, 0.8])
          cylinder(h = 1.6, d1 = 8.4, d2 = 7.6);
      }
    }

    // 3. Hollow light-pipe cups inside each baffle ring (leaving 0.8 mm translucent floor at Z = 0..0.8)
    for (lx = [-10.0, 0.0, 10.0]) {
      translate([lx, 0, 0.8])
        cylinder(h = 2.0, d = 5.4);
    }
  }
}

color(col_bone) prop_05_resolve_insert();
